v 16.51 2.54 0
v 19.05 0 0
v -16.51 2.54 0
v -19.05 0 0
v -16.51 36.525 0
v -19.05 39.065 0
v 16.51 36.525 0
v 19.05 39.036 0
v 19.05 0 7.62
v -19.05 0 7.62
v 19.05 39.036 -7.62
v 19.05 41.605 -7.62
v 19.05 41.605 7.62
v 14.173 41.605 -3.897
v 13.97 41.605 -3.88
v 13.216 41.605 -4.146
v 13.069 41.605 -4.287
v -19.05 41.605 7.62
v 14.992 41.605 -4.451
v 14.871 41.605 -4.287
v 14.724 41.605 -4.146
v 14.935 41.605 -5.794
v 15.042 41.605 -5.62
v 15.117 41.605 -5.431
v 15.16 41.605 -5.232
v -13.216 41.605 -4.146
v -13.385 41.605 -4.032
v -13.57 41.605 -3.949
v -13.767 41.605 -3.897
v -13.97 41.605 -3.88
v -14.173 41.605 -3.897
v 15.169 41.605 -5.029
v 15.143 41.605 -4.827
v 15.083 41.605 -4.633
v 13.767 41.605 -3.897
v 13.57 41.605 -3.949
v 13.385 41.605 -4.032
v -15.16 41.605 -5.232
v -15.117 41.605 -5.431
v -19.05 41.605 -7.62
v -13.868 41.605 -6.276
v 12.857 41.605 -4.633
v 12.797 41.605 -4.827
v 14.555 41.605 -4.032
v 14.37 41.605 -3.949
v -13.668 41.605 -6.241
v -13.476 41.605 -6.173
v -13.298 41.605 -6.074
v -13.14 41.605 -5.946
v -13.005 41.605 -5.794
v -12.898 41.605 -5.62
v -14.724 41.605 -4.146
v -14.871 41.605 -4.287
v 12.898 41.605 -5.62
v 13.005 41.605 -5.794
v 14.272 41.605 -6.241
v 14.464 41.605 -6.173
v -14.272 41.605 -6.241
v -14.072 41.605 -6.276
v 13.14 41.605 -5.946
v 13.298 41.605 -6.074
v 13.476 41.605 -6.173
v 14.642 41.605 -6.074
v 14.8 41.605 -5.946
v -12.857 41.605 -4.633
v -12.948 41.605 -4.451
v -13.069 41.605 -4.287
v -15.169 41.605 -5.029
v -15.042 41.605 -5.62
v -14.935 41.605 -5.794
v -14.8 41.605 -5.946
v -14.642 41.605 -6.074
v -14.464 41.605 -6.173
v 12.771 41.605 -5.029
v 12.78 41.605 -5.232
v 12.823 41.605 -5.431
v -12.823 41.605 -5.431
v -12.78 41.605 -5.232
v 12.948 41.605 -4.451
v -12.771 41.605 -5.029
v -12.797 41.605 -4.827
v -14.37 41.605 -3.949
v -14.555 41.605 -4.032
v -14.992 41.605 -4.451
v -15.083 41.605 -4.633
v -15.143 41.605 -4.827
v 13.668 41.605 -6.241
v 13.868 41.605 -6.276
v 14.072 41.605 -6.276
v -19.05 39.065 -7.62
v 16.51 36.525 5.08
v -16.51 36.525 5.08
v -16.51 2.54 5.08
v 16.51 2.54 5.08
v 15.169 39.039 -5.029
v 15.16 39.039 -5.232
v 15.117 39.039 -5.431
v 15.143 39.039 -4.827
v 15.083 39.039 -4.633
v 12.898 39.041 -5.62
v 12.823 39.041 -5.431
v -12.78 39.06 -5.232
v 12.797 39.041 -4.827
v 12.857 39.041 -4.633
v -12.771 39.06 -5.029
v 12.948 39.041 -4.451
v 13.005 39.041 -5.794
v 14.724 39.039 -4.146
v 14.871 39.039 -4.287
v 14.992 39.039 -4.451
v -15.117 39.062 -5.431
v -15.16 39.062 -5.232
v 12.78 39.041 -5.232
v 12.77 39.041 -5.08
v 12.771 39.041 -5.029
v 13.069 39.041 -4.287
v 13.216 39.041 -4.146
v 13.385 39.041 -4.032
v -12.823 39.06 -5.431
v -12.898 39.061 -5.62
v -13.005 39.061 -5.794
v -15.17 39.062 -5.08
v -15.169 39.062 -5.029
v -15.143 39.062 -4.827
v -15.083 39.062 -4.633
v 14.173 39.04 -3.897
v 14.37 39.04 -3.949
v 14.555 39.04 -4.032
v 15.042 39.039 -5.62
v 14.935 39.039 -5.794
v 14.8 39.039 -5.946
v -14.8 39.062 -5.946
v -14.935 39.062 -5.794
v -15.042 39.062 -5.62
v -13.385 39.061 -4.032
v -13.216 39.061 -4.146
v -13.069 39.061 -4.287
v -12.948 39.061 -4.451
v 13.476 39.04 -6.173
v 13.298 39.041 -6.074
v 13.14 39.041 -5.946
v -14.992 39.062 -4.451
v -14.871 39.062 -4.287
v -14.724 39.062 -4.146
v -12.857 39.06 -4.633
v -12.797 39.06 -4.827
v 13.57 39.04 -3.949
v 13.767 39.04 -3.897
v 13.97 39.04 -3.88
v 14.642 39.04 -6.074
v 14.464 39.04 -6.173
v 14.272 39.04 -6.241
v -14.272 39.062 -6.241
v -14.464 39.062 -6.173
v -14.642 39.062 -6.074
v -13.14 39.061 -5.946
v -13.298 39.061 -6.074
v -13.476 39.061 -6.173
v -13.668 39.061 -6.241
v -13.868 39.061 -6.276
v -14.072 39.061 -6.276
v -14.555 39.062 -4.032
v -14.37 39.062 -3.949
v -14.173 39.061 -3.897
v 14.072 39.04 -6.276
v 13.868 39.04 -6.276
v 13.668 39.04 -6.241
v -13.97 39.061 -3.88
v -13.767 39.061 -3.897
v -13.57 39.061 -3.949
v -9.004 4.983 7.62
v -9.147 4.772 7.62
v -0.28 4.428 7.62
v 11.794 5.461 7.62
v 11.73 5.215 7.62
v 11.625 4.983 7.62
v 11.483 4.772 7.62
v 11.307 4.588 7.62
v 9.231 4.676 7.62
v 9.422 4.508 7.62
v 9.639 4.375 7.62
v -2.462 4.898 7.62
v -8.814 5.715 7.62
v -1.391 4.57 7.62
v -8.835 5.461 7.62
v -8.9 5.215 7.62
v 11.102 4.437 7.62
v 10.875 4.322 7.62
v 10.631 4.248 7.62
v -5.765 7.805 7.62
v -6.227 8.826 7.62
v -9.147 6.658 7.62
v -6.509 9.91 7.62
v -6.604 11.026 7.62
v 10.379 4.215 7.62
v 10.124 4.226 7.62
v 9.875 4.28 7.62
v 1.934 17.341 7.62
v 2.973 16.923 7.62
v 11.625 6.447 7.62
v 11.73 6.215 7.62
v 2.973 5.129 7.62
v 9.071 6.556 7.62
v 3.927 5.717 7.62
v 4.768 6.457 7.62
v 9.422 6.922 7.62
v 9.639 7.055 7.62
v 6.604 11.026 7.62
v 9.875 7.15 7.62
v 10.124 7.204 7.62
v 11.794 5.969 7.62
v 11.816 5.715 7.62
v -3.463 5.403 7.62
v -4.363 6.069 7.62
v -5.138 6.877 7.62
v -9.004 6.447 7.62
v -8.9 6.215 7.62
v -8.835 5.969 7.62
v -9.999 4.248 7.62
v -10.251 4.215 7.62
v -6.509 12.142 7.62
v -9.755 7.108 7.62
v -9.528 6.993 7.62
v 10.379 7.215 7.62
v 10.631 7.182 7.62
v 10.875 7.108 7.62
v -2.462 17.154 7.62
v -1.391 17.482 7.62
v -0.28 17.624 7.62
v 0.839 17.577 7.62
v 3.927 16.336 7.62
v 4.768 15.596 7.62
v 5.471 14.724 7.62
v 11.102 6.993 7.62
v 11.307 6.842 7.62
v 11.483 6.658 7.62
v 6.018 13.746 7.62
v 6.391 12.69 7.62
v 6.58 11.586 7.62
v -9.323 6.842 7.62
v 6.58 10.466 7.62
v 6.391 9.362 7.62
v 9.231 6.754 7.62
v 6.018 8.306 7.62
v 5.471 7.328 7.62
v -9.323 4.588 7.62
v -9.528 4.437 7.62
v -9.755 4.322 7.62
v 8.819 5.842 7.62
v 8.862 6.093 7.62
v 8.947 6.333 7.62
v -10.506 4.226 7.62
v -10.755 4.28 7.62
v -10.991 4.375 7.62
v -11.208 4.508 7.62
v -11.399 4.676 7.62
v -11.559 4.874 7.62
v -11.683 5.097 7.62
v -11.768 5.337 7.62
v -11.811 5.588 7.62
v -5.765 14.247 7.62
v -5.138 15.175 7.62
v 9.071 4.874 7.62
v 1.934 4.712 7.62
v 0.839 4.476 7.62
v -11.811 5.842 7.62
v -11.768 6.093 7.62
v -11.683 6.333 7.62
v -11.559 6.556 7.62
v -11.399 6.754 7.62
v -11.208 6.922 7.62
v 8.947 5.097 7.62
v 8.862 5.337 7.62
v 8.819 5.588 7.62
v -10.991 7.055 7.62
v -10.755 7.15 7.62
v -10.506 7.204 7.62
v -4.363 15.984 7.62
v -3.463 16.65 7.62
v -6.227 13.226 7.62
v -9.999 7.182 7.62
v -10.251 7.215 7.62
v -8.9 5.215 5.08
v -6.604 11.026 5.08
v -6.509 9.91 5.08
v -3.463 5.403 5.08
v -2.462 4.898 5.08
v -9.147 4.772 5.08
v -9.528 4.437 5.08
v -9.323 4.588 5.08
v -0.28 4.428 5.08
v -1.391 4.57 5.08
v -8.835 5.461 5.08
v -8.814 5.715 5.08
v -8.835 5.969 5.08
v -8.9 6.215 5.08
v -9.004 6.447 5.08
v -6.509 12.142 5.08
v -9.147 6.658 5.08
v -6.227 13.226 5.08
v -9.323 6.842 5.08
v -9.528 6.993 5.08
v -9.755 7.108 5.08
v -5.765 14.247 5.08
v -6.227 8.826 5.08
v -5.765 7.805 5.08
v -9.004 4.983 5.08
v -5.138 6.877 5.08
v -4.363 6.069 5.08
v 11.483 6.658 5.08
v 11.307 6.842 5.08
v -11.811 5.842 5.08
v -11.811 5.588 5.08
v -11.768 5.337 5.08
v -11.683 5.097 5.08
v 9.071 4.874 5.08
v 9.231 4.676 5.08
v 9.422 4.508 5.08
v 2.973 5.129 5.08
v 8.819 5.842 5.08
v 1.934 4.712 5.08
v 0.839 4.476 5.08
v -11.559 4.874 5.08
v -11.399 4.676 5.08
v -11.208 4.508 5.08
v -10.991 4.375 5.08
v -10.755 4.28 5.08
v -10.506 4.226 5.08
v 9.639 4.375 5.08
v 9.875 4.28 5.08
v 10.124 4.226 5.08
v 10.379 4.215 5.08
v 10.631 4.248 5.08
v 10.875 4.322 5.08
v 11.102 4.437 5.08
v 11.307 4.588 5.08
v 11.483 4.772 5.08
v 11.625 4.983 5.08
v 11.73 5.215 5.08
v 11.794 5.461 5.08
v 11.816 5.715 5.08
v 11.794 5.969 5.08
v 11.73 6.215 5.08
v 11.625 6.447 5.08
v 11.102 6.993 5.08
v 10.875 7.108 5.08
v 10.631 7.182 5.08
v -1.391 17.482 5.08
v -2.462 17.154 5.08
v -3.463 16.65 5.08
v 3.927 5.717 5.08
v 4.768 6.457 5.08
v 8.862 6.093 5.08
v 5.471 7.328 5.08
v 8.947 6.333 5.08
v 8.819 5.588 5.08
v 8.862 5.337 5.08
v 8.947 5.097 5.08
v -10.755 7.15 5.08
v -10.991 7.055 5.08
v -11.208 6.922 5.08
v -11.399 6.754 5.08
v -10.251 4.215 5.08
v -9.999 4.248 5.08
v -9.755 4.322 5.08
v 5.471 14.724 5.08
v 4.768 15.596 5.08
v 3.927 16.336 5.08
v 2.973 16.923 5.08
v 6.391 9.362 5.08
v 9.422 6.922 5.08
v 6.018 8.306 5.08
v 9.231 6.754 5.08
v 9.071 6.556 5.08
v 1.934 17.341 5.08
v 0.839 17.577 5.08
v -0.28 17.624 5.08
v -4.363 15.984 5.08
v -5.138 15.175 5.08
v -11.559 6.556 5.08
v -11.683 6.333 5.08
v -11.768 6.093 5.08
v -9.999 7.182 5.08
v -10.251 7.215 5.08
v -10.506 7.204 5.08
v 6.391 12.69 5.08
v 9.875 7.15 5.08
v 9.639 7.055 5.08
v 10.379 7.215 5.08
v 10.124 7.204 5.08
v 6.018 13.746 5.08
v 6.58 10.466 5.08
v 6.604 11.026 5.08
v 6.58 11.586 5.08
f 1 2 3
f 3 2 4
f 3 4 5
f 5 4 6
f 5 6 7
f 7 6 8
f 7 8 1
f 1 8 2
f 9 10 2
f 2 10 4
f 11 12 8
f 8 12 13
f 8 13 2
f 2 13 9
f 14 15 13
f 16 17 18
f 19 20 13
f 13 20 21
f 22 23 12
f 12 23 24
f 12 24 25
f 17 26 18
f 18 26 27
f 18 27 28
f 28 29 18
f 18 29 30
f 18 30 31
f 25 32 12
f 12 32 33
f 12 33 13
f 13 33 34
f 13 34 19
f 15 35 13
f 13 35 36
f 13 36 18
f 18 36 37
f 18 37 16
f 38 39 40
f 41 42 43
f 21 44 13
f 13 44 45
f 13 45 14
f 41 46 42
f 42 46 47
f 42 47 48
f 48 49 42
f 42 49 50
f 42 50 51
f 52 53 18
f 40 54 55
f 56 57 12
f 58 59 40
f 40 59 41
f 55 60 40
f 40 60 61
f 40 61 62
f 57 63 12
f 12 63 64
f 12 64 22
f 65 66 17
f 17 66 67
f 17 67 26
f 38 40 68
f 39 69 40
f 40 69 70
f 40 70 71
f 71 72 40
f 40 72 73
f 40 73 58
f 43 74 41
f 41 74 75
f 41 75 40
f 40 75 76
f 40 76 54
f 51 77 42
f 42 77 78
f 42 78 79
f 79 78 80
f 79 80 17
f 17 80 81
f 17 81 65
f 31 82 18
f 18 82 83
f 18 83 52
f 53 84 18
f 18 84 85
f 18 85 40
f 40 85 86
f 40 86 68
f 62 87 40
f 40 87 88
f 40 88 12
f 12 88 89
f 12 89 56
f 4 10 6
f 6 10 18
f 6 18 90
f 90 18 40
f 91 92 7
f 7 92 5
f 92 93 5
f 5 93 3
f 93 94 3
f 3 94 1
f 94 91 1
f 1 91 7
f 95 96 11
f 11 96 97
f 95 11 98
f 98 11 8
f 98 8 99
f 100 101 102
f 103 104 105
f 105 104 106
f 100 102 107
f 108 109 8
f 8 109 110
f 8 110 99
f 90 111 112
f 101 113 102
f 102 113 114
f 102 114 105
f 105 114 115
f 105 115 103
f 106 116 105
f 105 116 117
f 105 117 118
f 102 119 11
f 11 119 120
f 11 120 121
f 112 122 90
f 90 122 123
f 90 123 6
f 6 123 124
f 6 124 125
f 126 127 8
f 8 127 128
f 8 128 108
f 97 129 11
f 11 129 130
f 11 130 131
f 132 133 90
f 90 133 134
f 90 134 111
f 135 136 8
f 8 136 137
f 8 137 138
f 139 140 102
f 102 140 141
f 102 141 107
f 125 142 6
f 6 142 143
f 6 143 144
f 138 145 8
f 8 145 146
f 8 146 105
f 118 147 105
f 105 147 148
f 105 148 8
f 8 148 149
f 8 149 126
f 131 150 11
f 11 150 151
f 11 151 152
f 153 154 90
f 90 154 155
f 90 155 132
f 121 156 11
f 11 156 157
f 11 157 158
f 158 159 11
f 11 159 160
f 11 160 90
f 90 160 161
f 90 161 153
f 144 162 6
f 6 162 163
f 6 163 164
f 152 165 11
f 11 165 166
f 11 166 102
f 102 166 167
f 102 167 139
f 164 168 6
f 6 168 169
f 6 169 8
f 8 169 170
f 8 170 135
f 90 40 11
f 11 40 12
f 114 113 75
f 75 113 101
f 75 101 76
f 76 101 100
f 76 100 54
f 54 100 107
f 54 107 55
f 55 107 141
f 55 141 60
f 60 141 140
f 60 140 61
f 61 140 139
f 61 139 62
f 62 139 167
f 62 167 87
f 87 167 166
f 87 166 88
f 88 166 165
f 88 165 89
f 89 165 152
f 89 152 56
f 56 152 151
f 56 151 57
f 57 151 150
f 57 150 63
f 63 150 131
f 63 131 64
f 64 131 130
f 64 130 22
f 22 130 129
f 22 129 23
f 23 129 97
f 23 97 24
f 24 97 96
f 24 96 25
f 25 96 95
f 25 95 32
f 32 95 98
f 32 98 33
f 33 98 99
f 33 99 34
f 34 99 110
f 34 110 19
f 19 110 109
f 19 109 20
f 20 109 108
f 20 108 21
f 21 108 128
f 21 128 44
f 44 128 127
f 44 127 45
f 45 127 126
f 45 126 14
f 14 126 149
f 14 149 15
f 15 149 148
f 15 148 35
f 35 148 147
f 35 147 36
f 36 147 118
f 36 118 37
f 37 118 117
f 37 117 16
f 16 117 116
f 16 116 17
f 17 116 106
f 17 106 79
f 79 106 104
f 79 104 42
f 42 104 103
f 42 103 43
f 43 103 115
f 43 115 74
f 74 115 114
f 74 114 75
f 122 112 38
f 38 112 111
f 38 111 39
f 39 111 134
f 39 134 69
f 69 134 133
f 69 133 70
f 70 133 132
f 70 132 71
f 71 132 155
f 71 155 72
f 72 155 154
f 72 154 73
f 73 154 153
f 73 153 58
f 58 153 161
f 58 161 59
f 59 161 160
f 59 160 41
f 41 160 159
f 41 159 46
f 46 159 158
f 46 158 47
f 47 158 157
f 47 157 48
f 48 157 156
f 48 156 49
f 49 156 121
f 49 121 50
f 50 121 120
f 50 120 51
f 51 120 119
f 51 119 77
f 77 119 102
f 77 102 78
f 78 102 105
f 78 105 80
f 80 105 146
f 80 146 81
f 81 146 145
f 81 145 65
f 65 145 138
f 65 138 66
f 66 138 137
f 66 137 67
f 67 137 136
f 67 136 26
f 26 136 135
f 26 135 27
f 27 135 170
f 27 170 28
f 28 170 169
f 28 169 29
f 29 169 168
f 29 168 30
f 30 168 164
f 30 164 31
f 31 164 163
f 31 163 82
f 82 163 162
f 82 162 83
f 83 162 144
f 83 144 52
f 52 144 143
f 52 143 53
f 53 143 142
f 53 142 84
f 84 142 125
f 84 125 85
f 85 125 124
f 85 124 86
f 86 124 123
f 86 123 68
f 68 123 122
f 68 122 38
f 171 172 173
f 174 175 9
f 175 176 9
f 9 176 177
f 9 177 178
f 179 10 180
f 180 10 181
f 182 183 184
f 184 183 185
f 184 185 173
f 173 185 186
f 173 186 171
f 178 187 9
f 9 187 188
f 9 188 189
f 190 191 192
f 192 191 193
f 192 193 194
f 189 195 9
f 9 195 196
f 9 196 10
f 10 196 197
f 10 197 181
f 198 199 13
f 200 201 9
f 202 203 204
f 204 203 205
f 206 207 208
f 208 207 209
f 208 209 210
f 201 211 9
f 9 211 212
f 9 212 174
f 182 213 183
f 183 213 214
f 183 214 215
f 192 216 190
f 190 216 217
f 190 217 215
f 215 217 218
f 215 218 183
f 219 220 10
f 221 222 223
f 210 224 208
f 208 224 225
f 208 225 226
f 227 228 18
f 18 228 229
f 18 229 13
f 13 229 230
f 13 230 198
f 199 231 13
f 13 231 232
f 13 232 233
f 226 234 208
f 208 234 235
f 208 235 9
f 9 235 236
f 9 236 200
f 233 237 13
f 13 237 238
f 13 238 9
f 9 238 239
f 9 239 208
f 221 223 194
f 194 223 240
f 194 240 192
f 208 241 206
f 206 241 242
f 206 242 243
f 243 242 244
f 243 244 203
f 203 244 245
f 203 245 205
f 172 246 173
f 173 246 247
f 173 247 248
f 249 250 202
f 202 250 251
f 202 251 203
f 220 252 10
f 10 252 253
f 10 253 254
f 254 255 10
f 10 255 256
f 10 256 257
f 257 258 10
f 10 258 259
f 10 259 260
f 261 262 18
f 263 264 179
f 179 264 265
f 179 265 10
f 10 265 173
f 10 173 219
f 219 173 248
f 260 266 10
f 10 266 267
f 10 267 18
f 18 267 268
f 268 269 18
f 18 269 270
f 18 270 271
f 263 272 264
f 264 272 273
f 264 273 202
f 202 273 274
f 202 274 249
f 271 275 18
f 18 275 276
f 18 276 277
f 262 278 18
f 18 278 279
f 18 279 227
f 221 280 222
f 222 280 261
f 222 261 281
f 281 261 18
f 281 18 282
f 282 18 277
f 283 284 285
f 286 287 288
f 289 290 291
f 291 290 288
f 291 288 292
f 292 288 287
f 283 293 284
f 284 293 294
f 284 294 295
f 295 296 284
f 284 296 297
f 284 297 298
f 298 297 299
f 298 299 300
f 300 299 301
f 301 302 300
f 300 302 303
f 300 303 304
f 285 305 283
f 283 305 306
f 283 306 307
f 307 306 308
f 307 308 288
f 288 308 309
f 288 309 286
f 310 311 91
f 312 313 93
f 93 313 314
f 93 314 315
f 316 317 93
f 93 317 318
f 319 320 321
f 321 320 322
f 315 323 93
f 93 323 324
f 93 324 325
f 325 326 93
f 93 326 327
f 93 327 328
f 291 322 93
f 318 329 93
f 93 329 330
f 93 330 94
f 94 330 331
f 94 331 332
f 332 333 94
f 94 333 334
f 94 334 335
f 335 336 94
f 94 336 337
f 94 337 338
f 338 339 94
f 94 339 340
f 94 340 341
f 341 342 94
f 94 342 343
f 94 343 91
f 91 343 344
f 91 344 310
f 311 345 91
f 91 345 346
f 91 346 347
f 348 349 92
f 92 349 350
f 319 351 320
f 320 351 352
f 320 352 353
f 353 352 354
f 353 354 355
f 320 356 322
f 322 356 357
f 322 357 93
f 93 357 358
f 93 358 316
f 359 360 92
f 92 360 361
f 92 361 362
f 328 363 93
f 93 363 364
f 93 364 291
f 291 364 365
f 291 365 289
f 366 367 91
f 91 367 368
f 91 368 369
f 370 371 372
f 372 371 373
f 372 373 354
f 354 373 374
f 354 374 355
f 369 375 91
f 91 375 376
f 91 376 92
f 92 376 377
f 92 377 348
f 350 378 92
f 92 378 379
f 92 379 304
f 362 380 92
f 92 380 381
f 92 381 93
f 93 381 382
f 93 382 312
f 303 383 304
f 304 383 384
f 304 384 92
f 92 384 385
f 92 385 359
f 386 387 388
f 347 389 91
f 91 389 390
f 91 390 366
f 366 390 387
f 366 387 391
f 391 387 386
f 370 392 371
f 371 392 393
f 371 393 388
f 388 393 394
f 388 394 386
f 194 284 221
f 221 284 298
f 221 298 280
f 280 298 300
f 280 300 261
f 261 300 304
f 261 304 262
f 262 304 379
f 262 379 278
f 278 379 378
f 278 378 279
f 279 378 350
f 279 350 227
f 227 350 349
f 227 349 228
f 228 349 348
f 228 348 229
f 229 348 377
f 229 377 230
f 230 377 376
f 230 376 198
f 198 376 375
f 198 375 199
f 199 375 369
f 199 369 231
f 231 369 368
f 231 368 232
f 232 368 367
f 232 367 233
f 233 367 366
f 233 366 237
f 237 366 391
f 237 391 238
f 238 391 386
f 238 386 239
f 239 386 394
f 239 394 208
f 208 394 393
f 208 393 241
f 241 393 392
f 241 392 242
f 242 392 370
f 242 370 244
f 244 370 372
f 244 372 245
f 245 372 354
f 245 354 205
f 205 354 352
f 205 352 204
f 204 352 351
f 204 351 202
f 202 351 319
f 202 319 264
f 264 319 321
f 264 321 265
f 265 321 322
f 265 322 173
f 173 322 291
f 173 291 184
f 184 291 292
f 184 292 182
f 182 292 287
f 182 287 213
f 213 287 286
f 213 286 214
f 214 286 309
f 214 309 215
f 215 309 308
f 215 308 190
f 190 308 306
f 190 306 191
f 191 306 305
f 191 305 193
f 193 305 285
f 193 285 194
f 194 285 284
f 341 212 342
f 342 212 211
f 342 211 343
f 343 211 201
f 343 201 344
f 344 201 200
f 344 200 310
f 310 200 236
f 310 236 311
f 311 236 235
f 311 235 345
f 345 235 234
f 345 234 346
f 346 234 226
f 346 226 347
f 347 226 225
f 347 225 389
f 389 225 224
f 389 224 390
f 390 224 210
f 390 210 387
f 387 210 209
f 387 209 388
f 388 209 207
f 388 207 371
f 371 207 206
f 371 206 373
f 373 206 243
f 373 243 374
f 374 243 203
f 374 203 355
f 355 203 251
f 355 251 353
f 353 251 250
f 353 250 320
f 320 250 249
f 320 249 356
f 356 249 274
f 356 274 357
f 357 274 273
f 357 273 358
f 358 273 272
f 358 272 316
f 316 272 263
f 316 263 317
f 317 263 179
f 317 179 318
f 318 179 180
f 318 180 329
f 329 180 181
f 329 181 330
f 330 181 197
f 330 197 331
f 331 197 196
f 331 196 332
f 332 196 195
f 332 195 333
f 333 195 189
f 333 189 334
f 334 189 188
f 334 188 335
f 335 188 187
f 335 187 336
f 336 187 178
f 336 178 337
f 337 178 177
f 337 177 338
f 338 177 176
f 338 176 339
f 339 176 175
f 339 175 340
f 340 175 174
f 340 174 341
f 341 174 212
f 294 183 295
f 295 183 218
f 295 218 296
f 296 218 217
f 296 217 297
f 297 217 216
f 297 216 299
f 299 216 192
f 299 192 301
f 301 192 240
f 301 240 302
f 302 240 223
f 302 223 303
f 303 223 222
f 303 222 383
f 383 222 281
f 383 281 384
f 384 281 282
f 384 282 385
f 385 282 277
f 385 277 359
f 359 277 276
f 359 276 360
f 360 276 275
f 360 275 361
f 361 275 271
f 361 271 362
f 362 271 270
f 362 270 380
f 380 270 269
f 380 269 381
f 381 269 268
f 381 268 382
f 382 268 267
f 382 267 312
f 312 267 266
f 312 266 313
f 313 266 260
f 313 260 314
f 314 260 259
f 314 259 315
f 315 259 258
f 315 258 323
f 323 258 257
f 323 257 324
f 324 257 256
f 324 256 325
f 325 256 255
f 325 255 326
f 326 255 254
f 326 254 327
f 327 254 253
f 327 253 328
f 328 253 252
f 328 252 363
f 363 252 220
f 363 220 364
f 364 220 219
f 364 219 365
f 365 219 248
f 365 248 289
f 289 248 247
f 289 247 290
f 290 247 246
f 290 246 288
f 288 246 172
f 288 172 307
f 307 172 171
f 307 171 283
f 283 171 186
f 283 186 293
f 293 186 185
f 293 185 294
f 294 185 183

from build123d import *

# Parameters (mm, degrees)
SKETCH2_W               = 38.1
SKETCH2_H               = 41.6052
SKETCH2_W_2             = 33.02
SKETCH2_H_2             = 33.9852
BOSS_EXTRUDE1_DEPTH     = 5.08
BOSS_EXTRUDE2_DEPTH     = 7.62
M2_CLEARANCE_HOLE1_D    = 2.4
SKETCH8_W               = 38.1
SKETCH8_H               = 41.6052
SKETCH8_R               = 6.604
BOSS_EXTRUDE3_DEPTH     = 2.54
SKETCH7_R               = 1.50114
CUT_EXTRUDE1_DEPTH      = 3.54
CUT_EXTRUDE1_DEPTH_BACK = 13.7


with BuildPart() as part:
    # Sketch2 → Boss-Extrude1 (new body)
    with BuildSketch(Plane.XY):
        with Locations((0, 20.8026)):
            Rectangle(SKETCH2_W, SKETCH2_H)
        with Locations((0, 19.5326)):
            Rectangle(SKETCH2_W_2, SKETCH2_H_2, mode=Mode.SUBTRACT)
    extrude(amount=BOSS_EXTRUDE1_DEPTH)

    # Sketch4 → Boss-Extrude2 (add)
    with BuildSketch(Plane(origin=(0, 0, 0), x_dir=(-1, 0, 0), z_dir=(0, 0, -1))):
        Polygon((-19.05, 41.6052), (19.05, 41.6052), (19.05, 39.0652), (-19.05, 39.036199263), align=None)
    extrude(amount=BOSS_EXTRUDE2_DEPTH)

    # M2 Clearance Hole1 (through all)
    with Locations(Plane(origin=(0, 41.6052, 0), x_dir=(1, 0, 0), z_dir=(0, 1, 0))):
        with Locations((-13.97, 5.08), (13.97, 5.08)):
            Hole(M2_CLEARANCE_HOLE1_D / 2)

    # Sketch8 → Boss-Extrude3 (add)
    with BuildSketch(Plane.XY.offset(5.08)):
        with Locations((0, 20.8026)):
            Rectangle(SKETCH8_W, SKETCH8_H)
        with Locations((0, 11.02614)):
            Circle(SKETCH8_R, mode=Mode.SUBTRACT)
    extrude(amount=BOSS_EXTRUDE3_DEPTH)

    # Sketch7 → Cut-Extrude1 (cut, two sides)
    with BuildSketch(Plane.XY.offset(5.08)) as cut_extrude1_sk:
        with Locations((-10.31494, 5.715)):
            Circle(SKETCH7_R)
        with Locations((10.31494, 5.715)):
            Circle(SKETCH7_R)
    extrude(amount=CUT_EXTRUDE1_DEPTH, mode=Mode.SUBTRACT)
    extrude(cut_extrude1_sk.sketch, amount=-CUT_EXTRUDE1_DEPTH_BACK, mode=Mode.SUBTRACT)


solid = part.part
